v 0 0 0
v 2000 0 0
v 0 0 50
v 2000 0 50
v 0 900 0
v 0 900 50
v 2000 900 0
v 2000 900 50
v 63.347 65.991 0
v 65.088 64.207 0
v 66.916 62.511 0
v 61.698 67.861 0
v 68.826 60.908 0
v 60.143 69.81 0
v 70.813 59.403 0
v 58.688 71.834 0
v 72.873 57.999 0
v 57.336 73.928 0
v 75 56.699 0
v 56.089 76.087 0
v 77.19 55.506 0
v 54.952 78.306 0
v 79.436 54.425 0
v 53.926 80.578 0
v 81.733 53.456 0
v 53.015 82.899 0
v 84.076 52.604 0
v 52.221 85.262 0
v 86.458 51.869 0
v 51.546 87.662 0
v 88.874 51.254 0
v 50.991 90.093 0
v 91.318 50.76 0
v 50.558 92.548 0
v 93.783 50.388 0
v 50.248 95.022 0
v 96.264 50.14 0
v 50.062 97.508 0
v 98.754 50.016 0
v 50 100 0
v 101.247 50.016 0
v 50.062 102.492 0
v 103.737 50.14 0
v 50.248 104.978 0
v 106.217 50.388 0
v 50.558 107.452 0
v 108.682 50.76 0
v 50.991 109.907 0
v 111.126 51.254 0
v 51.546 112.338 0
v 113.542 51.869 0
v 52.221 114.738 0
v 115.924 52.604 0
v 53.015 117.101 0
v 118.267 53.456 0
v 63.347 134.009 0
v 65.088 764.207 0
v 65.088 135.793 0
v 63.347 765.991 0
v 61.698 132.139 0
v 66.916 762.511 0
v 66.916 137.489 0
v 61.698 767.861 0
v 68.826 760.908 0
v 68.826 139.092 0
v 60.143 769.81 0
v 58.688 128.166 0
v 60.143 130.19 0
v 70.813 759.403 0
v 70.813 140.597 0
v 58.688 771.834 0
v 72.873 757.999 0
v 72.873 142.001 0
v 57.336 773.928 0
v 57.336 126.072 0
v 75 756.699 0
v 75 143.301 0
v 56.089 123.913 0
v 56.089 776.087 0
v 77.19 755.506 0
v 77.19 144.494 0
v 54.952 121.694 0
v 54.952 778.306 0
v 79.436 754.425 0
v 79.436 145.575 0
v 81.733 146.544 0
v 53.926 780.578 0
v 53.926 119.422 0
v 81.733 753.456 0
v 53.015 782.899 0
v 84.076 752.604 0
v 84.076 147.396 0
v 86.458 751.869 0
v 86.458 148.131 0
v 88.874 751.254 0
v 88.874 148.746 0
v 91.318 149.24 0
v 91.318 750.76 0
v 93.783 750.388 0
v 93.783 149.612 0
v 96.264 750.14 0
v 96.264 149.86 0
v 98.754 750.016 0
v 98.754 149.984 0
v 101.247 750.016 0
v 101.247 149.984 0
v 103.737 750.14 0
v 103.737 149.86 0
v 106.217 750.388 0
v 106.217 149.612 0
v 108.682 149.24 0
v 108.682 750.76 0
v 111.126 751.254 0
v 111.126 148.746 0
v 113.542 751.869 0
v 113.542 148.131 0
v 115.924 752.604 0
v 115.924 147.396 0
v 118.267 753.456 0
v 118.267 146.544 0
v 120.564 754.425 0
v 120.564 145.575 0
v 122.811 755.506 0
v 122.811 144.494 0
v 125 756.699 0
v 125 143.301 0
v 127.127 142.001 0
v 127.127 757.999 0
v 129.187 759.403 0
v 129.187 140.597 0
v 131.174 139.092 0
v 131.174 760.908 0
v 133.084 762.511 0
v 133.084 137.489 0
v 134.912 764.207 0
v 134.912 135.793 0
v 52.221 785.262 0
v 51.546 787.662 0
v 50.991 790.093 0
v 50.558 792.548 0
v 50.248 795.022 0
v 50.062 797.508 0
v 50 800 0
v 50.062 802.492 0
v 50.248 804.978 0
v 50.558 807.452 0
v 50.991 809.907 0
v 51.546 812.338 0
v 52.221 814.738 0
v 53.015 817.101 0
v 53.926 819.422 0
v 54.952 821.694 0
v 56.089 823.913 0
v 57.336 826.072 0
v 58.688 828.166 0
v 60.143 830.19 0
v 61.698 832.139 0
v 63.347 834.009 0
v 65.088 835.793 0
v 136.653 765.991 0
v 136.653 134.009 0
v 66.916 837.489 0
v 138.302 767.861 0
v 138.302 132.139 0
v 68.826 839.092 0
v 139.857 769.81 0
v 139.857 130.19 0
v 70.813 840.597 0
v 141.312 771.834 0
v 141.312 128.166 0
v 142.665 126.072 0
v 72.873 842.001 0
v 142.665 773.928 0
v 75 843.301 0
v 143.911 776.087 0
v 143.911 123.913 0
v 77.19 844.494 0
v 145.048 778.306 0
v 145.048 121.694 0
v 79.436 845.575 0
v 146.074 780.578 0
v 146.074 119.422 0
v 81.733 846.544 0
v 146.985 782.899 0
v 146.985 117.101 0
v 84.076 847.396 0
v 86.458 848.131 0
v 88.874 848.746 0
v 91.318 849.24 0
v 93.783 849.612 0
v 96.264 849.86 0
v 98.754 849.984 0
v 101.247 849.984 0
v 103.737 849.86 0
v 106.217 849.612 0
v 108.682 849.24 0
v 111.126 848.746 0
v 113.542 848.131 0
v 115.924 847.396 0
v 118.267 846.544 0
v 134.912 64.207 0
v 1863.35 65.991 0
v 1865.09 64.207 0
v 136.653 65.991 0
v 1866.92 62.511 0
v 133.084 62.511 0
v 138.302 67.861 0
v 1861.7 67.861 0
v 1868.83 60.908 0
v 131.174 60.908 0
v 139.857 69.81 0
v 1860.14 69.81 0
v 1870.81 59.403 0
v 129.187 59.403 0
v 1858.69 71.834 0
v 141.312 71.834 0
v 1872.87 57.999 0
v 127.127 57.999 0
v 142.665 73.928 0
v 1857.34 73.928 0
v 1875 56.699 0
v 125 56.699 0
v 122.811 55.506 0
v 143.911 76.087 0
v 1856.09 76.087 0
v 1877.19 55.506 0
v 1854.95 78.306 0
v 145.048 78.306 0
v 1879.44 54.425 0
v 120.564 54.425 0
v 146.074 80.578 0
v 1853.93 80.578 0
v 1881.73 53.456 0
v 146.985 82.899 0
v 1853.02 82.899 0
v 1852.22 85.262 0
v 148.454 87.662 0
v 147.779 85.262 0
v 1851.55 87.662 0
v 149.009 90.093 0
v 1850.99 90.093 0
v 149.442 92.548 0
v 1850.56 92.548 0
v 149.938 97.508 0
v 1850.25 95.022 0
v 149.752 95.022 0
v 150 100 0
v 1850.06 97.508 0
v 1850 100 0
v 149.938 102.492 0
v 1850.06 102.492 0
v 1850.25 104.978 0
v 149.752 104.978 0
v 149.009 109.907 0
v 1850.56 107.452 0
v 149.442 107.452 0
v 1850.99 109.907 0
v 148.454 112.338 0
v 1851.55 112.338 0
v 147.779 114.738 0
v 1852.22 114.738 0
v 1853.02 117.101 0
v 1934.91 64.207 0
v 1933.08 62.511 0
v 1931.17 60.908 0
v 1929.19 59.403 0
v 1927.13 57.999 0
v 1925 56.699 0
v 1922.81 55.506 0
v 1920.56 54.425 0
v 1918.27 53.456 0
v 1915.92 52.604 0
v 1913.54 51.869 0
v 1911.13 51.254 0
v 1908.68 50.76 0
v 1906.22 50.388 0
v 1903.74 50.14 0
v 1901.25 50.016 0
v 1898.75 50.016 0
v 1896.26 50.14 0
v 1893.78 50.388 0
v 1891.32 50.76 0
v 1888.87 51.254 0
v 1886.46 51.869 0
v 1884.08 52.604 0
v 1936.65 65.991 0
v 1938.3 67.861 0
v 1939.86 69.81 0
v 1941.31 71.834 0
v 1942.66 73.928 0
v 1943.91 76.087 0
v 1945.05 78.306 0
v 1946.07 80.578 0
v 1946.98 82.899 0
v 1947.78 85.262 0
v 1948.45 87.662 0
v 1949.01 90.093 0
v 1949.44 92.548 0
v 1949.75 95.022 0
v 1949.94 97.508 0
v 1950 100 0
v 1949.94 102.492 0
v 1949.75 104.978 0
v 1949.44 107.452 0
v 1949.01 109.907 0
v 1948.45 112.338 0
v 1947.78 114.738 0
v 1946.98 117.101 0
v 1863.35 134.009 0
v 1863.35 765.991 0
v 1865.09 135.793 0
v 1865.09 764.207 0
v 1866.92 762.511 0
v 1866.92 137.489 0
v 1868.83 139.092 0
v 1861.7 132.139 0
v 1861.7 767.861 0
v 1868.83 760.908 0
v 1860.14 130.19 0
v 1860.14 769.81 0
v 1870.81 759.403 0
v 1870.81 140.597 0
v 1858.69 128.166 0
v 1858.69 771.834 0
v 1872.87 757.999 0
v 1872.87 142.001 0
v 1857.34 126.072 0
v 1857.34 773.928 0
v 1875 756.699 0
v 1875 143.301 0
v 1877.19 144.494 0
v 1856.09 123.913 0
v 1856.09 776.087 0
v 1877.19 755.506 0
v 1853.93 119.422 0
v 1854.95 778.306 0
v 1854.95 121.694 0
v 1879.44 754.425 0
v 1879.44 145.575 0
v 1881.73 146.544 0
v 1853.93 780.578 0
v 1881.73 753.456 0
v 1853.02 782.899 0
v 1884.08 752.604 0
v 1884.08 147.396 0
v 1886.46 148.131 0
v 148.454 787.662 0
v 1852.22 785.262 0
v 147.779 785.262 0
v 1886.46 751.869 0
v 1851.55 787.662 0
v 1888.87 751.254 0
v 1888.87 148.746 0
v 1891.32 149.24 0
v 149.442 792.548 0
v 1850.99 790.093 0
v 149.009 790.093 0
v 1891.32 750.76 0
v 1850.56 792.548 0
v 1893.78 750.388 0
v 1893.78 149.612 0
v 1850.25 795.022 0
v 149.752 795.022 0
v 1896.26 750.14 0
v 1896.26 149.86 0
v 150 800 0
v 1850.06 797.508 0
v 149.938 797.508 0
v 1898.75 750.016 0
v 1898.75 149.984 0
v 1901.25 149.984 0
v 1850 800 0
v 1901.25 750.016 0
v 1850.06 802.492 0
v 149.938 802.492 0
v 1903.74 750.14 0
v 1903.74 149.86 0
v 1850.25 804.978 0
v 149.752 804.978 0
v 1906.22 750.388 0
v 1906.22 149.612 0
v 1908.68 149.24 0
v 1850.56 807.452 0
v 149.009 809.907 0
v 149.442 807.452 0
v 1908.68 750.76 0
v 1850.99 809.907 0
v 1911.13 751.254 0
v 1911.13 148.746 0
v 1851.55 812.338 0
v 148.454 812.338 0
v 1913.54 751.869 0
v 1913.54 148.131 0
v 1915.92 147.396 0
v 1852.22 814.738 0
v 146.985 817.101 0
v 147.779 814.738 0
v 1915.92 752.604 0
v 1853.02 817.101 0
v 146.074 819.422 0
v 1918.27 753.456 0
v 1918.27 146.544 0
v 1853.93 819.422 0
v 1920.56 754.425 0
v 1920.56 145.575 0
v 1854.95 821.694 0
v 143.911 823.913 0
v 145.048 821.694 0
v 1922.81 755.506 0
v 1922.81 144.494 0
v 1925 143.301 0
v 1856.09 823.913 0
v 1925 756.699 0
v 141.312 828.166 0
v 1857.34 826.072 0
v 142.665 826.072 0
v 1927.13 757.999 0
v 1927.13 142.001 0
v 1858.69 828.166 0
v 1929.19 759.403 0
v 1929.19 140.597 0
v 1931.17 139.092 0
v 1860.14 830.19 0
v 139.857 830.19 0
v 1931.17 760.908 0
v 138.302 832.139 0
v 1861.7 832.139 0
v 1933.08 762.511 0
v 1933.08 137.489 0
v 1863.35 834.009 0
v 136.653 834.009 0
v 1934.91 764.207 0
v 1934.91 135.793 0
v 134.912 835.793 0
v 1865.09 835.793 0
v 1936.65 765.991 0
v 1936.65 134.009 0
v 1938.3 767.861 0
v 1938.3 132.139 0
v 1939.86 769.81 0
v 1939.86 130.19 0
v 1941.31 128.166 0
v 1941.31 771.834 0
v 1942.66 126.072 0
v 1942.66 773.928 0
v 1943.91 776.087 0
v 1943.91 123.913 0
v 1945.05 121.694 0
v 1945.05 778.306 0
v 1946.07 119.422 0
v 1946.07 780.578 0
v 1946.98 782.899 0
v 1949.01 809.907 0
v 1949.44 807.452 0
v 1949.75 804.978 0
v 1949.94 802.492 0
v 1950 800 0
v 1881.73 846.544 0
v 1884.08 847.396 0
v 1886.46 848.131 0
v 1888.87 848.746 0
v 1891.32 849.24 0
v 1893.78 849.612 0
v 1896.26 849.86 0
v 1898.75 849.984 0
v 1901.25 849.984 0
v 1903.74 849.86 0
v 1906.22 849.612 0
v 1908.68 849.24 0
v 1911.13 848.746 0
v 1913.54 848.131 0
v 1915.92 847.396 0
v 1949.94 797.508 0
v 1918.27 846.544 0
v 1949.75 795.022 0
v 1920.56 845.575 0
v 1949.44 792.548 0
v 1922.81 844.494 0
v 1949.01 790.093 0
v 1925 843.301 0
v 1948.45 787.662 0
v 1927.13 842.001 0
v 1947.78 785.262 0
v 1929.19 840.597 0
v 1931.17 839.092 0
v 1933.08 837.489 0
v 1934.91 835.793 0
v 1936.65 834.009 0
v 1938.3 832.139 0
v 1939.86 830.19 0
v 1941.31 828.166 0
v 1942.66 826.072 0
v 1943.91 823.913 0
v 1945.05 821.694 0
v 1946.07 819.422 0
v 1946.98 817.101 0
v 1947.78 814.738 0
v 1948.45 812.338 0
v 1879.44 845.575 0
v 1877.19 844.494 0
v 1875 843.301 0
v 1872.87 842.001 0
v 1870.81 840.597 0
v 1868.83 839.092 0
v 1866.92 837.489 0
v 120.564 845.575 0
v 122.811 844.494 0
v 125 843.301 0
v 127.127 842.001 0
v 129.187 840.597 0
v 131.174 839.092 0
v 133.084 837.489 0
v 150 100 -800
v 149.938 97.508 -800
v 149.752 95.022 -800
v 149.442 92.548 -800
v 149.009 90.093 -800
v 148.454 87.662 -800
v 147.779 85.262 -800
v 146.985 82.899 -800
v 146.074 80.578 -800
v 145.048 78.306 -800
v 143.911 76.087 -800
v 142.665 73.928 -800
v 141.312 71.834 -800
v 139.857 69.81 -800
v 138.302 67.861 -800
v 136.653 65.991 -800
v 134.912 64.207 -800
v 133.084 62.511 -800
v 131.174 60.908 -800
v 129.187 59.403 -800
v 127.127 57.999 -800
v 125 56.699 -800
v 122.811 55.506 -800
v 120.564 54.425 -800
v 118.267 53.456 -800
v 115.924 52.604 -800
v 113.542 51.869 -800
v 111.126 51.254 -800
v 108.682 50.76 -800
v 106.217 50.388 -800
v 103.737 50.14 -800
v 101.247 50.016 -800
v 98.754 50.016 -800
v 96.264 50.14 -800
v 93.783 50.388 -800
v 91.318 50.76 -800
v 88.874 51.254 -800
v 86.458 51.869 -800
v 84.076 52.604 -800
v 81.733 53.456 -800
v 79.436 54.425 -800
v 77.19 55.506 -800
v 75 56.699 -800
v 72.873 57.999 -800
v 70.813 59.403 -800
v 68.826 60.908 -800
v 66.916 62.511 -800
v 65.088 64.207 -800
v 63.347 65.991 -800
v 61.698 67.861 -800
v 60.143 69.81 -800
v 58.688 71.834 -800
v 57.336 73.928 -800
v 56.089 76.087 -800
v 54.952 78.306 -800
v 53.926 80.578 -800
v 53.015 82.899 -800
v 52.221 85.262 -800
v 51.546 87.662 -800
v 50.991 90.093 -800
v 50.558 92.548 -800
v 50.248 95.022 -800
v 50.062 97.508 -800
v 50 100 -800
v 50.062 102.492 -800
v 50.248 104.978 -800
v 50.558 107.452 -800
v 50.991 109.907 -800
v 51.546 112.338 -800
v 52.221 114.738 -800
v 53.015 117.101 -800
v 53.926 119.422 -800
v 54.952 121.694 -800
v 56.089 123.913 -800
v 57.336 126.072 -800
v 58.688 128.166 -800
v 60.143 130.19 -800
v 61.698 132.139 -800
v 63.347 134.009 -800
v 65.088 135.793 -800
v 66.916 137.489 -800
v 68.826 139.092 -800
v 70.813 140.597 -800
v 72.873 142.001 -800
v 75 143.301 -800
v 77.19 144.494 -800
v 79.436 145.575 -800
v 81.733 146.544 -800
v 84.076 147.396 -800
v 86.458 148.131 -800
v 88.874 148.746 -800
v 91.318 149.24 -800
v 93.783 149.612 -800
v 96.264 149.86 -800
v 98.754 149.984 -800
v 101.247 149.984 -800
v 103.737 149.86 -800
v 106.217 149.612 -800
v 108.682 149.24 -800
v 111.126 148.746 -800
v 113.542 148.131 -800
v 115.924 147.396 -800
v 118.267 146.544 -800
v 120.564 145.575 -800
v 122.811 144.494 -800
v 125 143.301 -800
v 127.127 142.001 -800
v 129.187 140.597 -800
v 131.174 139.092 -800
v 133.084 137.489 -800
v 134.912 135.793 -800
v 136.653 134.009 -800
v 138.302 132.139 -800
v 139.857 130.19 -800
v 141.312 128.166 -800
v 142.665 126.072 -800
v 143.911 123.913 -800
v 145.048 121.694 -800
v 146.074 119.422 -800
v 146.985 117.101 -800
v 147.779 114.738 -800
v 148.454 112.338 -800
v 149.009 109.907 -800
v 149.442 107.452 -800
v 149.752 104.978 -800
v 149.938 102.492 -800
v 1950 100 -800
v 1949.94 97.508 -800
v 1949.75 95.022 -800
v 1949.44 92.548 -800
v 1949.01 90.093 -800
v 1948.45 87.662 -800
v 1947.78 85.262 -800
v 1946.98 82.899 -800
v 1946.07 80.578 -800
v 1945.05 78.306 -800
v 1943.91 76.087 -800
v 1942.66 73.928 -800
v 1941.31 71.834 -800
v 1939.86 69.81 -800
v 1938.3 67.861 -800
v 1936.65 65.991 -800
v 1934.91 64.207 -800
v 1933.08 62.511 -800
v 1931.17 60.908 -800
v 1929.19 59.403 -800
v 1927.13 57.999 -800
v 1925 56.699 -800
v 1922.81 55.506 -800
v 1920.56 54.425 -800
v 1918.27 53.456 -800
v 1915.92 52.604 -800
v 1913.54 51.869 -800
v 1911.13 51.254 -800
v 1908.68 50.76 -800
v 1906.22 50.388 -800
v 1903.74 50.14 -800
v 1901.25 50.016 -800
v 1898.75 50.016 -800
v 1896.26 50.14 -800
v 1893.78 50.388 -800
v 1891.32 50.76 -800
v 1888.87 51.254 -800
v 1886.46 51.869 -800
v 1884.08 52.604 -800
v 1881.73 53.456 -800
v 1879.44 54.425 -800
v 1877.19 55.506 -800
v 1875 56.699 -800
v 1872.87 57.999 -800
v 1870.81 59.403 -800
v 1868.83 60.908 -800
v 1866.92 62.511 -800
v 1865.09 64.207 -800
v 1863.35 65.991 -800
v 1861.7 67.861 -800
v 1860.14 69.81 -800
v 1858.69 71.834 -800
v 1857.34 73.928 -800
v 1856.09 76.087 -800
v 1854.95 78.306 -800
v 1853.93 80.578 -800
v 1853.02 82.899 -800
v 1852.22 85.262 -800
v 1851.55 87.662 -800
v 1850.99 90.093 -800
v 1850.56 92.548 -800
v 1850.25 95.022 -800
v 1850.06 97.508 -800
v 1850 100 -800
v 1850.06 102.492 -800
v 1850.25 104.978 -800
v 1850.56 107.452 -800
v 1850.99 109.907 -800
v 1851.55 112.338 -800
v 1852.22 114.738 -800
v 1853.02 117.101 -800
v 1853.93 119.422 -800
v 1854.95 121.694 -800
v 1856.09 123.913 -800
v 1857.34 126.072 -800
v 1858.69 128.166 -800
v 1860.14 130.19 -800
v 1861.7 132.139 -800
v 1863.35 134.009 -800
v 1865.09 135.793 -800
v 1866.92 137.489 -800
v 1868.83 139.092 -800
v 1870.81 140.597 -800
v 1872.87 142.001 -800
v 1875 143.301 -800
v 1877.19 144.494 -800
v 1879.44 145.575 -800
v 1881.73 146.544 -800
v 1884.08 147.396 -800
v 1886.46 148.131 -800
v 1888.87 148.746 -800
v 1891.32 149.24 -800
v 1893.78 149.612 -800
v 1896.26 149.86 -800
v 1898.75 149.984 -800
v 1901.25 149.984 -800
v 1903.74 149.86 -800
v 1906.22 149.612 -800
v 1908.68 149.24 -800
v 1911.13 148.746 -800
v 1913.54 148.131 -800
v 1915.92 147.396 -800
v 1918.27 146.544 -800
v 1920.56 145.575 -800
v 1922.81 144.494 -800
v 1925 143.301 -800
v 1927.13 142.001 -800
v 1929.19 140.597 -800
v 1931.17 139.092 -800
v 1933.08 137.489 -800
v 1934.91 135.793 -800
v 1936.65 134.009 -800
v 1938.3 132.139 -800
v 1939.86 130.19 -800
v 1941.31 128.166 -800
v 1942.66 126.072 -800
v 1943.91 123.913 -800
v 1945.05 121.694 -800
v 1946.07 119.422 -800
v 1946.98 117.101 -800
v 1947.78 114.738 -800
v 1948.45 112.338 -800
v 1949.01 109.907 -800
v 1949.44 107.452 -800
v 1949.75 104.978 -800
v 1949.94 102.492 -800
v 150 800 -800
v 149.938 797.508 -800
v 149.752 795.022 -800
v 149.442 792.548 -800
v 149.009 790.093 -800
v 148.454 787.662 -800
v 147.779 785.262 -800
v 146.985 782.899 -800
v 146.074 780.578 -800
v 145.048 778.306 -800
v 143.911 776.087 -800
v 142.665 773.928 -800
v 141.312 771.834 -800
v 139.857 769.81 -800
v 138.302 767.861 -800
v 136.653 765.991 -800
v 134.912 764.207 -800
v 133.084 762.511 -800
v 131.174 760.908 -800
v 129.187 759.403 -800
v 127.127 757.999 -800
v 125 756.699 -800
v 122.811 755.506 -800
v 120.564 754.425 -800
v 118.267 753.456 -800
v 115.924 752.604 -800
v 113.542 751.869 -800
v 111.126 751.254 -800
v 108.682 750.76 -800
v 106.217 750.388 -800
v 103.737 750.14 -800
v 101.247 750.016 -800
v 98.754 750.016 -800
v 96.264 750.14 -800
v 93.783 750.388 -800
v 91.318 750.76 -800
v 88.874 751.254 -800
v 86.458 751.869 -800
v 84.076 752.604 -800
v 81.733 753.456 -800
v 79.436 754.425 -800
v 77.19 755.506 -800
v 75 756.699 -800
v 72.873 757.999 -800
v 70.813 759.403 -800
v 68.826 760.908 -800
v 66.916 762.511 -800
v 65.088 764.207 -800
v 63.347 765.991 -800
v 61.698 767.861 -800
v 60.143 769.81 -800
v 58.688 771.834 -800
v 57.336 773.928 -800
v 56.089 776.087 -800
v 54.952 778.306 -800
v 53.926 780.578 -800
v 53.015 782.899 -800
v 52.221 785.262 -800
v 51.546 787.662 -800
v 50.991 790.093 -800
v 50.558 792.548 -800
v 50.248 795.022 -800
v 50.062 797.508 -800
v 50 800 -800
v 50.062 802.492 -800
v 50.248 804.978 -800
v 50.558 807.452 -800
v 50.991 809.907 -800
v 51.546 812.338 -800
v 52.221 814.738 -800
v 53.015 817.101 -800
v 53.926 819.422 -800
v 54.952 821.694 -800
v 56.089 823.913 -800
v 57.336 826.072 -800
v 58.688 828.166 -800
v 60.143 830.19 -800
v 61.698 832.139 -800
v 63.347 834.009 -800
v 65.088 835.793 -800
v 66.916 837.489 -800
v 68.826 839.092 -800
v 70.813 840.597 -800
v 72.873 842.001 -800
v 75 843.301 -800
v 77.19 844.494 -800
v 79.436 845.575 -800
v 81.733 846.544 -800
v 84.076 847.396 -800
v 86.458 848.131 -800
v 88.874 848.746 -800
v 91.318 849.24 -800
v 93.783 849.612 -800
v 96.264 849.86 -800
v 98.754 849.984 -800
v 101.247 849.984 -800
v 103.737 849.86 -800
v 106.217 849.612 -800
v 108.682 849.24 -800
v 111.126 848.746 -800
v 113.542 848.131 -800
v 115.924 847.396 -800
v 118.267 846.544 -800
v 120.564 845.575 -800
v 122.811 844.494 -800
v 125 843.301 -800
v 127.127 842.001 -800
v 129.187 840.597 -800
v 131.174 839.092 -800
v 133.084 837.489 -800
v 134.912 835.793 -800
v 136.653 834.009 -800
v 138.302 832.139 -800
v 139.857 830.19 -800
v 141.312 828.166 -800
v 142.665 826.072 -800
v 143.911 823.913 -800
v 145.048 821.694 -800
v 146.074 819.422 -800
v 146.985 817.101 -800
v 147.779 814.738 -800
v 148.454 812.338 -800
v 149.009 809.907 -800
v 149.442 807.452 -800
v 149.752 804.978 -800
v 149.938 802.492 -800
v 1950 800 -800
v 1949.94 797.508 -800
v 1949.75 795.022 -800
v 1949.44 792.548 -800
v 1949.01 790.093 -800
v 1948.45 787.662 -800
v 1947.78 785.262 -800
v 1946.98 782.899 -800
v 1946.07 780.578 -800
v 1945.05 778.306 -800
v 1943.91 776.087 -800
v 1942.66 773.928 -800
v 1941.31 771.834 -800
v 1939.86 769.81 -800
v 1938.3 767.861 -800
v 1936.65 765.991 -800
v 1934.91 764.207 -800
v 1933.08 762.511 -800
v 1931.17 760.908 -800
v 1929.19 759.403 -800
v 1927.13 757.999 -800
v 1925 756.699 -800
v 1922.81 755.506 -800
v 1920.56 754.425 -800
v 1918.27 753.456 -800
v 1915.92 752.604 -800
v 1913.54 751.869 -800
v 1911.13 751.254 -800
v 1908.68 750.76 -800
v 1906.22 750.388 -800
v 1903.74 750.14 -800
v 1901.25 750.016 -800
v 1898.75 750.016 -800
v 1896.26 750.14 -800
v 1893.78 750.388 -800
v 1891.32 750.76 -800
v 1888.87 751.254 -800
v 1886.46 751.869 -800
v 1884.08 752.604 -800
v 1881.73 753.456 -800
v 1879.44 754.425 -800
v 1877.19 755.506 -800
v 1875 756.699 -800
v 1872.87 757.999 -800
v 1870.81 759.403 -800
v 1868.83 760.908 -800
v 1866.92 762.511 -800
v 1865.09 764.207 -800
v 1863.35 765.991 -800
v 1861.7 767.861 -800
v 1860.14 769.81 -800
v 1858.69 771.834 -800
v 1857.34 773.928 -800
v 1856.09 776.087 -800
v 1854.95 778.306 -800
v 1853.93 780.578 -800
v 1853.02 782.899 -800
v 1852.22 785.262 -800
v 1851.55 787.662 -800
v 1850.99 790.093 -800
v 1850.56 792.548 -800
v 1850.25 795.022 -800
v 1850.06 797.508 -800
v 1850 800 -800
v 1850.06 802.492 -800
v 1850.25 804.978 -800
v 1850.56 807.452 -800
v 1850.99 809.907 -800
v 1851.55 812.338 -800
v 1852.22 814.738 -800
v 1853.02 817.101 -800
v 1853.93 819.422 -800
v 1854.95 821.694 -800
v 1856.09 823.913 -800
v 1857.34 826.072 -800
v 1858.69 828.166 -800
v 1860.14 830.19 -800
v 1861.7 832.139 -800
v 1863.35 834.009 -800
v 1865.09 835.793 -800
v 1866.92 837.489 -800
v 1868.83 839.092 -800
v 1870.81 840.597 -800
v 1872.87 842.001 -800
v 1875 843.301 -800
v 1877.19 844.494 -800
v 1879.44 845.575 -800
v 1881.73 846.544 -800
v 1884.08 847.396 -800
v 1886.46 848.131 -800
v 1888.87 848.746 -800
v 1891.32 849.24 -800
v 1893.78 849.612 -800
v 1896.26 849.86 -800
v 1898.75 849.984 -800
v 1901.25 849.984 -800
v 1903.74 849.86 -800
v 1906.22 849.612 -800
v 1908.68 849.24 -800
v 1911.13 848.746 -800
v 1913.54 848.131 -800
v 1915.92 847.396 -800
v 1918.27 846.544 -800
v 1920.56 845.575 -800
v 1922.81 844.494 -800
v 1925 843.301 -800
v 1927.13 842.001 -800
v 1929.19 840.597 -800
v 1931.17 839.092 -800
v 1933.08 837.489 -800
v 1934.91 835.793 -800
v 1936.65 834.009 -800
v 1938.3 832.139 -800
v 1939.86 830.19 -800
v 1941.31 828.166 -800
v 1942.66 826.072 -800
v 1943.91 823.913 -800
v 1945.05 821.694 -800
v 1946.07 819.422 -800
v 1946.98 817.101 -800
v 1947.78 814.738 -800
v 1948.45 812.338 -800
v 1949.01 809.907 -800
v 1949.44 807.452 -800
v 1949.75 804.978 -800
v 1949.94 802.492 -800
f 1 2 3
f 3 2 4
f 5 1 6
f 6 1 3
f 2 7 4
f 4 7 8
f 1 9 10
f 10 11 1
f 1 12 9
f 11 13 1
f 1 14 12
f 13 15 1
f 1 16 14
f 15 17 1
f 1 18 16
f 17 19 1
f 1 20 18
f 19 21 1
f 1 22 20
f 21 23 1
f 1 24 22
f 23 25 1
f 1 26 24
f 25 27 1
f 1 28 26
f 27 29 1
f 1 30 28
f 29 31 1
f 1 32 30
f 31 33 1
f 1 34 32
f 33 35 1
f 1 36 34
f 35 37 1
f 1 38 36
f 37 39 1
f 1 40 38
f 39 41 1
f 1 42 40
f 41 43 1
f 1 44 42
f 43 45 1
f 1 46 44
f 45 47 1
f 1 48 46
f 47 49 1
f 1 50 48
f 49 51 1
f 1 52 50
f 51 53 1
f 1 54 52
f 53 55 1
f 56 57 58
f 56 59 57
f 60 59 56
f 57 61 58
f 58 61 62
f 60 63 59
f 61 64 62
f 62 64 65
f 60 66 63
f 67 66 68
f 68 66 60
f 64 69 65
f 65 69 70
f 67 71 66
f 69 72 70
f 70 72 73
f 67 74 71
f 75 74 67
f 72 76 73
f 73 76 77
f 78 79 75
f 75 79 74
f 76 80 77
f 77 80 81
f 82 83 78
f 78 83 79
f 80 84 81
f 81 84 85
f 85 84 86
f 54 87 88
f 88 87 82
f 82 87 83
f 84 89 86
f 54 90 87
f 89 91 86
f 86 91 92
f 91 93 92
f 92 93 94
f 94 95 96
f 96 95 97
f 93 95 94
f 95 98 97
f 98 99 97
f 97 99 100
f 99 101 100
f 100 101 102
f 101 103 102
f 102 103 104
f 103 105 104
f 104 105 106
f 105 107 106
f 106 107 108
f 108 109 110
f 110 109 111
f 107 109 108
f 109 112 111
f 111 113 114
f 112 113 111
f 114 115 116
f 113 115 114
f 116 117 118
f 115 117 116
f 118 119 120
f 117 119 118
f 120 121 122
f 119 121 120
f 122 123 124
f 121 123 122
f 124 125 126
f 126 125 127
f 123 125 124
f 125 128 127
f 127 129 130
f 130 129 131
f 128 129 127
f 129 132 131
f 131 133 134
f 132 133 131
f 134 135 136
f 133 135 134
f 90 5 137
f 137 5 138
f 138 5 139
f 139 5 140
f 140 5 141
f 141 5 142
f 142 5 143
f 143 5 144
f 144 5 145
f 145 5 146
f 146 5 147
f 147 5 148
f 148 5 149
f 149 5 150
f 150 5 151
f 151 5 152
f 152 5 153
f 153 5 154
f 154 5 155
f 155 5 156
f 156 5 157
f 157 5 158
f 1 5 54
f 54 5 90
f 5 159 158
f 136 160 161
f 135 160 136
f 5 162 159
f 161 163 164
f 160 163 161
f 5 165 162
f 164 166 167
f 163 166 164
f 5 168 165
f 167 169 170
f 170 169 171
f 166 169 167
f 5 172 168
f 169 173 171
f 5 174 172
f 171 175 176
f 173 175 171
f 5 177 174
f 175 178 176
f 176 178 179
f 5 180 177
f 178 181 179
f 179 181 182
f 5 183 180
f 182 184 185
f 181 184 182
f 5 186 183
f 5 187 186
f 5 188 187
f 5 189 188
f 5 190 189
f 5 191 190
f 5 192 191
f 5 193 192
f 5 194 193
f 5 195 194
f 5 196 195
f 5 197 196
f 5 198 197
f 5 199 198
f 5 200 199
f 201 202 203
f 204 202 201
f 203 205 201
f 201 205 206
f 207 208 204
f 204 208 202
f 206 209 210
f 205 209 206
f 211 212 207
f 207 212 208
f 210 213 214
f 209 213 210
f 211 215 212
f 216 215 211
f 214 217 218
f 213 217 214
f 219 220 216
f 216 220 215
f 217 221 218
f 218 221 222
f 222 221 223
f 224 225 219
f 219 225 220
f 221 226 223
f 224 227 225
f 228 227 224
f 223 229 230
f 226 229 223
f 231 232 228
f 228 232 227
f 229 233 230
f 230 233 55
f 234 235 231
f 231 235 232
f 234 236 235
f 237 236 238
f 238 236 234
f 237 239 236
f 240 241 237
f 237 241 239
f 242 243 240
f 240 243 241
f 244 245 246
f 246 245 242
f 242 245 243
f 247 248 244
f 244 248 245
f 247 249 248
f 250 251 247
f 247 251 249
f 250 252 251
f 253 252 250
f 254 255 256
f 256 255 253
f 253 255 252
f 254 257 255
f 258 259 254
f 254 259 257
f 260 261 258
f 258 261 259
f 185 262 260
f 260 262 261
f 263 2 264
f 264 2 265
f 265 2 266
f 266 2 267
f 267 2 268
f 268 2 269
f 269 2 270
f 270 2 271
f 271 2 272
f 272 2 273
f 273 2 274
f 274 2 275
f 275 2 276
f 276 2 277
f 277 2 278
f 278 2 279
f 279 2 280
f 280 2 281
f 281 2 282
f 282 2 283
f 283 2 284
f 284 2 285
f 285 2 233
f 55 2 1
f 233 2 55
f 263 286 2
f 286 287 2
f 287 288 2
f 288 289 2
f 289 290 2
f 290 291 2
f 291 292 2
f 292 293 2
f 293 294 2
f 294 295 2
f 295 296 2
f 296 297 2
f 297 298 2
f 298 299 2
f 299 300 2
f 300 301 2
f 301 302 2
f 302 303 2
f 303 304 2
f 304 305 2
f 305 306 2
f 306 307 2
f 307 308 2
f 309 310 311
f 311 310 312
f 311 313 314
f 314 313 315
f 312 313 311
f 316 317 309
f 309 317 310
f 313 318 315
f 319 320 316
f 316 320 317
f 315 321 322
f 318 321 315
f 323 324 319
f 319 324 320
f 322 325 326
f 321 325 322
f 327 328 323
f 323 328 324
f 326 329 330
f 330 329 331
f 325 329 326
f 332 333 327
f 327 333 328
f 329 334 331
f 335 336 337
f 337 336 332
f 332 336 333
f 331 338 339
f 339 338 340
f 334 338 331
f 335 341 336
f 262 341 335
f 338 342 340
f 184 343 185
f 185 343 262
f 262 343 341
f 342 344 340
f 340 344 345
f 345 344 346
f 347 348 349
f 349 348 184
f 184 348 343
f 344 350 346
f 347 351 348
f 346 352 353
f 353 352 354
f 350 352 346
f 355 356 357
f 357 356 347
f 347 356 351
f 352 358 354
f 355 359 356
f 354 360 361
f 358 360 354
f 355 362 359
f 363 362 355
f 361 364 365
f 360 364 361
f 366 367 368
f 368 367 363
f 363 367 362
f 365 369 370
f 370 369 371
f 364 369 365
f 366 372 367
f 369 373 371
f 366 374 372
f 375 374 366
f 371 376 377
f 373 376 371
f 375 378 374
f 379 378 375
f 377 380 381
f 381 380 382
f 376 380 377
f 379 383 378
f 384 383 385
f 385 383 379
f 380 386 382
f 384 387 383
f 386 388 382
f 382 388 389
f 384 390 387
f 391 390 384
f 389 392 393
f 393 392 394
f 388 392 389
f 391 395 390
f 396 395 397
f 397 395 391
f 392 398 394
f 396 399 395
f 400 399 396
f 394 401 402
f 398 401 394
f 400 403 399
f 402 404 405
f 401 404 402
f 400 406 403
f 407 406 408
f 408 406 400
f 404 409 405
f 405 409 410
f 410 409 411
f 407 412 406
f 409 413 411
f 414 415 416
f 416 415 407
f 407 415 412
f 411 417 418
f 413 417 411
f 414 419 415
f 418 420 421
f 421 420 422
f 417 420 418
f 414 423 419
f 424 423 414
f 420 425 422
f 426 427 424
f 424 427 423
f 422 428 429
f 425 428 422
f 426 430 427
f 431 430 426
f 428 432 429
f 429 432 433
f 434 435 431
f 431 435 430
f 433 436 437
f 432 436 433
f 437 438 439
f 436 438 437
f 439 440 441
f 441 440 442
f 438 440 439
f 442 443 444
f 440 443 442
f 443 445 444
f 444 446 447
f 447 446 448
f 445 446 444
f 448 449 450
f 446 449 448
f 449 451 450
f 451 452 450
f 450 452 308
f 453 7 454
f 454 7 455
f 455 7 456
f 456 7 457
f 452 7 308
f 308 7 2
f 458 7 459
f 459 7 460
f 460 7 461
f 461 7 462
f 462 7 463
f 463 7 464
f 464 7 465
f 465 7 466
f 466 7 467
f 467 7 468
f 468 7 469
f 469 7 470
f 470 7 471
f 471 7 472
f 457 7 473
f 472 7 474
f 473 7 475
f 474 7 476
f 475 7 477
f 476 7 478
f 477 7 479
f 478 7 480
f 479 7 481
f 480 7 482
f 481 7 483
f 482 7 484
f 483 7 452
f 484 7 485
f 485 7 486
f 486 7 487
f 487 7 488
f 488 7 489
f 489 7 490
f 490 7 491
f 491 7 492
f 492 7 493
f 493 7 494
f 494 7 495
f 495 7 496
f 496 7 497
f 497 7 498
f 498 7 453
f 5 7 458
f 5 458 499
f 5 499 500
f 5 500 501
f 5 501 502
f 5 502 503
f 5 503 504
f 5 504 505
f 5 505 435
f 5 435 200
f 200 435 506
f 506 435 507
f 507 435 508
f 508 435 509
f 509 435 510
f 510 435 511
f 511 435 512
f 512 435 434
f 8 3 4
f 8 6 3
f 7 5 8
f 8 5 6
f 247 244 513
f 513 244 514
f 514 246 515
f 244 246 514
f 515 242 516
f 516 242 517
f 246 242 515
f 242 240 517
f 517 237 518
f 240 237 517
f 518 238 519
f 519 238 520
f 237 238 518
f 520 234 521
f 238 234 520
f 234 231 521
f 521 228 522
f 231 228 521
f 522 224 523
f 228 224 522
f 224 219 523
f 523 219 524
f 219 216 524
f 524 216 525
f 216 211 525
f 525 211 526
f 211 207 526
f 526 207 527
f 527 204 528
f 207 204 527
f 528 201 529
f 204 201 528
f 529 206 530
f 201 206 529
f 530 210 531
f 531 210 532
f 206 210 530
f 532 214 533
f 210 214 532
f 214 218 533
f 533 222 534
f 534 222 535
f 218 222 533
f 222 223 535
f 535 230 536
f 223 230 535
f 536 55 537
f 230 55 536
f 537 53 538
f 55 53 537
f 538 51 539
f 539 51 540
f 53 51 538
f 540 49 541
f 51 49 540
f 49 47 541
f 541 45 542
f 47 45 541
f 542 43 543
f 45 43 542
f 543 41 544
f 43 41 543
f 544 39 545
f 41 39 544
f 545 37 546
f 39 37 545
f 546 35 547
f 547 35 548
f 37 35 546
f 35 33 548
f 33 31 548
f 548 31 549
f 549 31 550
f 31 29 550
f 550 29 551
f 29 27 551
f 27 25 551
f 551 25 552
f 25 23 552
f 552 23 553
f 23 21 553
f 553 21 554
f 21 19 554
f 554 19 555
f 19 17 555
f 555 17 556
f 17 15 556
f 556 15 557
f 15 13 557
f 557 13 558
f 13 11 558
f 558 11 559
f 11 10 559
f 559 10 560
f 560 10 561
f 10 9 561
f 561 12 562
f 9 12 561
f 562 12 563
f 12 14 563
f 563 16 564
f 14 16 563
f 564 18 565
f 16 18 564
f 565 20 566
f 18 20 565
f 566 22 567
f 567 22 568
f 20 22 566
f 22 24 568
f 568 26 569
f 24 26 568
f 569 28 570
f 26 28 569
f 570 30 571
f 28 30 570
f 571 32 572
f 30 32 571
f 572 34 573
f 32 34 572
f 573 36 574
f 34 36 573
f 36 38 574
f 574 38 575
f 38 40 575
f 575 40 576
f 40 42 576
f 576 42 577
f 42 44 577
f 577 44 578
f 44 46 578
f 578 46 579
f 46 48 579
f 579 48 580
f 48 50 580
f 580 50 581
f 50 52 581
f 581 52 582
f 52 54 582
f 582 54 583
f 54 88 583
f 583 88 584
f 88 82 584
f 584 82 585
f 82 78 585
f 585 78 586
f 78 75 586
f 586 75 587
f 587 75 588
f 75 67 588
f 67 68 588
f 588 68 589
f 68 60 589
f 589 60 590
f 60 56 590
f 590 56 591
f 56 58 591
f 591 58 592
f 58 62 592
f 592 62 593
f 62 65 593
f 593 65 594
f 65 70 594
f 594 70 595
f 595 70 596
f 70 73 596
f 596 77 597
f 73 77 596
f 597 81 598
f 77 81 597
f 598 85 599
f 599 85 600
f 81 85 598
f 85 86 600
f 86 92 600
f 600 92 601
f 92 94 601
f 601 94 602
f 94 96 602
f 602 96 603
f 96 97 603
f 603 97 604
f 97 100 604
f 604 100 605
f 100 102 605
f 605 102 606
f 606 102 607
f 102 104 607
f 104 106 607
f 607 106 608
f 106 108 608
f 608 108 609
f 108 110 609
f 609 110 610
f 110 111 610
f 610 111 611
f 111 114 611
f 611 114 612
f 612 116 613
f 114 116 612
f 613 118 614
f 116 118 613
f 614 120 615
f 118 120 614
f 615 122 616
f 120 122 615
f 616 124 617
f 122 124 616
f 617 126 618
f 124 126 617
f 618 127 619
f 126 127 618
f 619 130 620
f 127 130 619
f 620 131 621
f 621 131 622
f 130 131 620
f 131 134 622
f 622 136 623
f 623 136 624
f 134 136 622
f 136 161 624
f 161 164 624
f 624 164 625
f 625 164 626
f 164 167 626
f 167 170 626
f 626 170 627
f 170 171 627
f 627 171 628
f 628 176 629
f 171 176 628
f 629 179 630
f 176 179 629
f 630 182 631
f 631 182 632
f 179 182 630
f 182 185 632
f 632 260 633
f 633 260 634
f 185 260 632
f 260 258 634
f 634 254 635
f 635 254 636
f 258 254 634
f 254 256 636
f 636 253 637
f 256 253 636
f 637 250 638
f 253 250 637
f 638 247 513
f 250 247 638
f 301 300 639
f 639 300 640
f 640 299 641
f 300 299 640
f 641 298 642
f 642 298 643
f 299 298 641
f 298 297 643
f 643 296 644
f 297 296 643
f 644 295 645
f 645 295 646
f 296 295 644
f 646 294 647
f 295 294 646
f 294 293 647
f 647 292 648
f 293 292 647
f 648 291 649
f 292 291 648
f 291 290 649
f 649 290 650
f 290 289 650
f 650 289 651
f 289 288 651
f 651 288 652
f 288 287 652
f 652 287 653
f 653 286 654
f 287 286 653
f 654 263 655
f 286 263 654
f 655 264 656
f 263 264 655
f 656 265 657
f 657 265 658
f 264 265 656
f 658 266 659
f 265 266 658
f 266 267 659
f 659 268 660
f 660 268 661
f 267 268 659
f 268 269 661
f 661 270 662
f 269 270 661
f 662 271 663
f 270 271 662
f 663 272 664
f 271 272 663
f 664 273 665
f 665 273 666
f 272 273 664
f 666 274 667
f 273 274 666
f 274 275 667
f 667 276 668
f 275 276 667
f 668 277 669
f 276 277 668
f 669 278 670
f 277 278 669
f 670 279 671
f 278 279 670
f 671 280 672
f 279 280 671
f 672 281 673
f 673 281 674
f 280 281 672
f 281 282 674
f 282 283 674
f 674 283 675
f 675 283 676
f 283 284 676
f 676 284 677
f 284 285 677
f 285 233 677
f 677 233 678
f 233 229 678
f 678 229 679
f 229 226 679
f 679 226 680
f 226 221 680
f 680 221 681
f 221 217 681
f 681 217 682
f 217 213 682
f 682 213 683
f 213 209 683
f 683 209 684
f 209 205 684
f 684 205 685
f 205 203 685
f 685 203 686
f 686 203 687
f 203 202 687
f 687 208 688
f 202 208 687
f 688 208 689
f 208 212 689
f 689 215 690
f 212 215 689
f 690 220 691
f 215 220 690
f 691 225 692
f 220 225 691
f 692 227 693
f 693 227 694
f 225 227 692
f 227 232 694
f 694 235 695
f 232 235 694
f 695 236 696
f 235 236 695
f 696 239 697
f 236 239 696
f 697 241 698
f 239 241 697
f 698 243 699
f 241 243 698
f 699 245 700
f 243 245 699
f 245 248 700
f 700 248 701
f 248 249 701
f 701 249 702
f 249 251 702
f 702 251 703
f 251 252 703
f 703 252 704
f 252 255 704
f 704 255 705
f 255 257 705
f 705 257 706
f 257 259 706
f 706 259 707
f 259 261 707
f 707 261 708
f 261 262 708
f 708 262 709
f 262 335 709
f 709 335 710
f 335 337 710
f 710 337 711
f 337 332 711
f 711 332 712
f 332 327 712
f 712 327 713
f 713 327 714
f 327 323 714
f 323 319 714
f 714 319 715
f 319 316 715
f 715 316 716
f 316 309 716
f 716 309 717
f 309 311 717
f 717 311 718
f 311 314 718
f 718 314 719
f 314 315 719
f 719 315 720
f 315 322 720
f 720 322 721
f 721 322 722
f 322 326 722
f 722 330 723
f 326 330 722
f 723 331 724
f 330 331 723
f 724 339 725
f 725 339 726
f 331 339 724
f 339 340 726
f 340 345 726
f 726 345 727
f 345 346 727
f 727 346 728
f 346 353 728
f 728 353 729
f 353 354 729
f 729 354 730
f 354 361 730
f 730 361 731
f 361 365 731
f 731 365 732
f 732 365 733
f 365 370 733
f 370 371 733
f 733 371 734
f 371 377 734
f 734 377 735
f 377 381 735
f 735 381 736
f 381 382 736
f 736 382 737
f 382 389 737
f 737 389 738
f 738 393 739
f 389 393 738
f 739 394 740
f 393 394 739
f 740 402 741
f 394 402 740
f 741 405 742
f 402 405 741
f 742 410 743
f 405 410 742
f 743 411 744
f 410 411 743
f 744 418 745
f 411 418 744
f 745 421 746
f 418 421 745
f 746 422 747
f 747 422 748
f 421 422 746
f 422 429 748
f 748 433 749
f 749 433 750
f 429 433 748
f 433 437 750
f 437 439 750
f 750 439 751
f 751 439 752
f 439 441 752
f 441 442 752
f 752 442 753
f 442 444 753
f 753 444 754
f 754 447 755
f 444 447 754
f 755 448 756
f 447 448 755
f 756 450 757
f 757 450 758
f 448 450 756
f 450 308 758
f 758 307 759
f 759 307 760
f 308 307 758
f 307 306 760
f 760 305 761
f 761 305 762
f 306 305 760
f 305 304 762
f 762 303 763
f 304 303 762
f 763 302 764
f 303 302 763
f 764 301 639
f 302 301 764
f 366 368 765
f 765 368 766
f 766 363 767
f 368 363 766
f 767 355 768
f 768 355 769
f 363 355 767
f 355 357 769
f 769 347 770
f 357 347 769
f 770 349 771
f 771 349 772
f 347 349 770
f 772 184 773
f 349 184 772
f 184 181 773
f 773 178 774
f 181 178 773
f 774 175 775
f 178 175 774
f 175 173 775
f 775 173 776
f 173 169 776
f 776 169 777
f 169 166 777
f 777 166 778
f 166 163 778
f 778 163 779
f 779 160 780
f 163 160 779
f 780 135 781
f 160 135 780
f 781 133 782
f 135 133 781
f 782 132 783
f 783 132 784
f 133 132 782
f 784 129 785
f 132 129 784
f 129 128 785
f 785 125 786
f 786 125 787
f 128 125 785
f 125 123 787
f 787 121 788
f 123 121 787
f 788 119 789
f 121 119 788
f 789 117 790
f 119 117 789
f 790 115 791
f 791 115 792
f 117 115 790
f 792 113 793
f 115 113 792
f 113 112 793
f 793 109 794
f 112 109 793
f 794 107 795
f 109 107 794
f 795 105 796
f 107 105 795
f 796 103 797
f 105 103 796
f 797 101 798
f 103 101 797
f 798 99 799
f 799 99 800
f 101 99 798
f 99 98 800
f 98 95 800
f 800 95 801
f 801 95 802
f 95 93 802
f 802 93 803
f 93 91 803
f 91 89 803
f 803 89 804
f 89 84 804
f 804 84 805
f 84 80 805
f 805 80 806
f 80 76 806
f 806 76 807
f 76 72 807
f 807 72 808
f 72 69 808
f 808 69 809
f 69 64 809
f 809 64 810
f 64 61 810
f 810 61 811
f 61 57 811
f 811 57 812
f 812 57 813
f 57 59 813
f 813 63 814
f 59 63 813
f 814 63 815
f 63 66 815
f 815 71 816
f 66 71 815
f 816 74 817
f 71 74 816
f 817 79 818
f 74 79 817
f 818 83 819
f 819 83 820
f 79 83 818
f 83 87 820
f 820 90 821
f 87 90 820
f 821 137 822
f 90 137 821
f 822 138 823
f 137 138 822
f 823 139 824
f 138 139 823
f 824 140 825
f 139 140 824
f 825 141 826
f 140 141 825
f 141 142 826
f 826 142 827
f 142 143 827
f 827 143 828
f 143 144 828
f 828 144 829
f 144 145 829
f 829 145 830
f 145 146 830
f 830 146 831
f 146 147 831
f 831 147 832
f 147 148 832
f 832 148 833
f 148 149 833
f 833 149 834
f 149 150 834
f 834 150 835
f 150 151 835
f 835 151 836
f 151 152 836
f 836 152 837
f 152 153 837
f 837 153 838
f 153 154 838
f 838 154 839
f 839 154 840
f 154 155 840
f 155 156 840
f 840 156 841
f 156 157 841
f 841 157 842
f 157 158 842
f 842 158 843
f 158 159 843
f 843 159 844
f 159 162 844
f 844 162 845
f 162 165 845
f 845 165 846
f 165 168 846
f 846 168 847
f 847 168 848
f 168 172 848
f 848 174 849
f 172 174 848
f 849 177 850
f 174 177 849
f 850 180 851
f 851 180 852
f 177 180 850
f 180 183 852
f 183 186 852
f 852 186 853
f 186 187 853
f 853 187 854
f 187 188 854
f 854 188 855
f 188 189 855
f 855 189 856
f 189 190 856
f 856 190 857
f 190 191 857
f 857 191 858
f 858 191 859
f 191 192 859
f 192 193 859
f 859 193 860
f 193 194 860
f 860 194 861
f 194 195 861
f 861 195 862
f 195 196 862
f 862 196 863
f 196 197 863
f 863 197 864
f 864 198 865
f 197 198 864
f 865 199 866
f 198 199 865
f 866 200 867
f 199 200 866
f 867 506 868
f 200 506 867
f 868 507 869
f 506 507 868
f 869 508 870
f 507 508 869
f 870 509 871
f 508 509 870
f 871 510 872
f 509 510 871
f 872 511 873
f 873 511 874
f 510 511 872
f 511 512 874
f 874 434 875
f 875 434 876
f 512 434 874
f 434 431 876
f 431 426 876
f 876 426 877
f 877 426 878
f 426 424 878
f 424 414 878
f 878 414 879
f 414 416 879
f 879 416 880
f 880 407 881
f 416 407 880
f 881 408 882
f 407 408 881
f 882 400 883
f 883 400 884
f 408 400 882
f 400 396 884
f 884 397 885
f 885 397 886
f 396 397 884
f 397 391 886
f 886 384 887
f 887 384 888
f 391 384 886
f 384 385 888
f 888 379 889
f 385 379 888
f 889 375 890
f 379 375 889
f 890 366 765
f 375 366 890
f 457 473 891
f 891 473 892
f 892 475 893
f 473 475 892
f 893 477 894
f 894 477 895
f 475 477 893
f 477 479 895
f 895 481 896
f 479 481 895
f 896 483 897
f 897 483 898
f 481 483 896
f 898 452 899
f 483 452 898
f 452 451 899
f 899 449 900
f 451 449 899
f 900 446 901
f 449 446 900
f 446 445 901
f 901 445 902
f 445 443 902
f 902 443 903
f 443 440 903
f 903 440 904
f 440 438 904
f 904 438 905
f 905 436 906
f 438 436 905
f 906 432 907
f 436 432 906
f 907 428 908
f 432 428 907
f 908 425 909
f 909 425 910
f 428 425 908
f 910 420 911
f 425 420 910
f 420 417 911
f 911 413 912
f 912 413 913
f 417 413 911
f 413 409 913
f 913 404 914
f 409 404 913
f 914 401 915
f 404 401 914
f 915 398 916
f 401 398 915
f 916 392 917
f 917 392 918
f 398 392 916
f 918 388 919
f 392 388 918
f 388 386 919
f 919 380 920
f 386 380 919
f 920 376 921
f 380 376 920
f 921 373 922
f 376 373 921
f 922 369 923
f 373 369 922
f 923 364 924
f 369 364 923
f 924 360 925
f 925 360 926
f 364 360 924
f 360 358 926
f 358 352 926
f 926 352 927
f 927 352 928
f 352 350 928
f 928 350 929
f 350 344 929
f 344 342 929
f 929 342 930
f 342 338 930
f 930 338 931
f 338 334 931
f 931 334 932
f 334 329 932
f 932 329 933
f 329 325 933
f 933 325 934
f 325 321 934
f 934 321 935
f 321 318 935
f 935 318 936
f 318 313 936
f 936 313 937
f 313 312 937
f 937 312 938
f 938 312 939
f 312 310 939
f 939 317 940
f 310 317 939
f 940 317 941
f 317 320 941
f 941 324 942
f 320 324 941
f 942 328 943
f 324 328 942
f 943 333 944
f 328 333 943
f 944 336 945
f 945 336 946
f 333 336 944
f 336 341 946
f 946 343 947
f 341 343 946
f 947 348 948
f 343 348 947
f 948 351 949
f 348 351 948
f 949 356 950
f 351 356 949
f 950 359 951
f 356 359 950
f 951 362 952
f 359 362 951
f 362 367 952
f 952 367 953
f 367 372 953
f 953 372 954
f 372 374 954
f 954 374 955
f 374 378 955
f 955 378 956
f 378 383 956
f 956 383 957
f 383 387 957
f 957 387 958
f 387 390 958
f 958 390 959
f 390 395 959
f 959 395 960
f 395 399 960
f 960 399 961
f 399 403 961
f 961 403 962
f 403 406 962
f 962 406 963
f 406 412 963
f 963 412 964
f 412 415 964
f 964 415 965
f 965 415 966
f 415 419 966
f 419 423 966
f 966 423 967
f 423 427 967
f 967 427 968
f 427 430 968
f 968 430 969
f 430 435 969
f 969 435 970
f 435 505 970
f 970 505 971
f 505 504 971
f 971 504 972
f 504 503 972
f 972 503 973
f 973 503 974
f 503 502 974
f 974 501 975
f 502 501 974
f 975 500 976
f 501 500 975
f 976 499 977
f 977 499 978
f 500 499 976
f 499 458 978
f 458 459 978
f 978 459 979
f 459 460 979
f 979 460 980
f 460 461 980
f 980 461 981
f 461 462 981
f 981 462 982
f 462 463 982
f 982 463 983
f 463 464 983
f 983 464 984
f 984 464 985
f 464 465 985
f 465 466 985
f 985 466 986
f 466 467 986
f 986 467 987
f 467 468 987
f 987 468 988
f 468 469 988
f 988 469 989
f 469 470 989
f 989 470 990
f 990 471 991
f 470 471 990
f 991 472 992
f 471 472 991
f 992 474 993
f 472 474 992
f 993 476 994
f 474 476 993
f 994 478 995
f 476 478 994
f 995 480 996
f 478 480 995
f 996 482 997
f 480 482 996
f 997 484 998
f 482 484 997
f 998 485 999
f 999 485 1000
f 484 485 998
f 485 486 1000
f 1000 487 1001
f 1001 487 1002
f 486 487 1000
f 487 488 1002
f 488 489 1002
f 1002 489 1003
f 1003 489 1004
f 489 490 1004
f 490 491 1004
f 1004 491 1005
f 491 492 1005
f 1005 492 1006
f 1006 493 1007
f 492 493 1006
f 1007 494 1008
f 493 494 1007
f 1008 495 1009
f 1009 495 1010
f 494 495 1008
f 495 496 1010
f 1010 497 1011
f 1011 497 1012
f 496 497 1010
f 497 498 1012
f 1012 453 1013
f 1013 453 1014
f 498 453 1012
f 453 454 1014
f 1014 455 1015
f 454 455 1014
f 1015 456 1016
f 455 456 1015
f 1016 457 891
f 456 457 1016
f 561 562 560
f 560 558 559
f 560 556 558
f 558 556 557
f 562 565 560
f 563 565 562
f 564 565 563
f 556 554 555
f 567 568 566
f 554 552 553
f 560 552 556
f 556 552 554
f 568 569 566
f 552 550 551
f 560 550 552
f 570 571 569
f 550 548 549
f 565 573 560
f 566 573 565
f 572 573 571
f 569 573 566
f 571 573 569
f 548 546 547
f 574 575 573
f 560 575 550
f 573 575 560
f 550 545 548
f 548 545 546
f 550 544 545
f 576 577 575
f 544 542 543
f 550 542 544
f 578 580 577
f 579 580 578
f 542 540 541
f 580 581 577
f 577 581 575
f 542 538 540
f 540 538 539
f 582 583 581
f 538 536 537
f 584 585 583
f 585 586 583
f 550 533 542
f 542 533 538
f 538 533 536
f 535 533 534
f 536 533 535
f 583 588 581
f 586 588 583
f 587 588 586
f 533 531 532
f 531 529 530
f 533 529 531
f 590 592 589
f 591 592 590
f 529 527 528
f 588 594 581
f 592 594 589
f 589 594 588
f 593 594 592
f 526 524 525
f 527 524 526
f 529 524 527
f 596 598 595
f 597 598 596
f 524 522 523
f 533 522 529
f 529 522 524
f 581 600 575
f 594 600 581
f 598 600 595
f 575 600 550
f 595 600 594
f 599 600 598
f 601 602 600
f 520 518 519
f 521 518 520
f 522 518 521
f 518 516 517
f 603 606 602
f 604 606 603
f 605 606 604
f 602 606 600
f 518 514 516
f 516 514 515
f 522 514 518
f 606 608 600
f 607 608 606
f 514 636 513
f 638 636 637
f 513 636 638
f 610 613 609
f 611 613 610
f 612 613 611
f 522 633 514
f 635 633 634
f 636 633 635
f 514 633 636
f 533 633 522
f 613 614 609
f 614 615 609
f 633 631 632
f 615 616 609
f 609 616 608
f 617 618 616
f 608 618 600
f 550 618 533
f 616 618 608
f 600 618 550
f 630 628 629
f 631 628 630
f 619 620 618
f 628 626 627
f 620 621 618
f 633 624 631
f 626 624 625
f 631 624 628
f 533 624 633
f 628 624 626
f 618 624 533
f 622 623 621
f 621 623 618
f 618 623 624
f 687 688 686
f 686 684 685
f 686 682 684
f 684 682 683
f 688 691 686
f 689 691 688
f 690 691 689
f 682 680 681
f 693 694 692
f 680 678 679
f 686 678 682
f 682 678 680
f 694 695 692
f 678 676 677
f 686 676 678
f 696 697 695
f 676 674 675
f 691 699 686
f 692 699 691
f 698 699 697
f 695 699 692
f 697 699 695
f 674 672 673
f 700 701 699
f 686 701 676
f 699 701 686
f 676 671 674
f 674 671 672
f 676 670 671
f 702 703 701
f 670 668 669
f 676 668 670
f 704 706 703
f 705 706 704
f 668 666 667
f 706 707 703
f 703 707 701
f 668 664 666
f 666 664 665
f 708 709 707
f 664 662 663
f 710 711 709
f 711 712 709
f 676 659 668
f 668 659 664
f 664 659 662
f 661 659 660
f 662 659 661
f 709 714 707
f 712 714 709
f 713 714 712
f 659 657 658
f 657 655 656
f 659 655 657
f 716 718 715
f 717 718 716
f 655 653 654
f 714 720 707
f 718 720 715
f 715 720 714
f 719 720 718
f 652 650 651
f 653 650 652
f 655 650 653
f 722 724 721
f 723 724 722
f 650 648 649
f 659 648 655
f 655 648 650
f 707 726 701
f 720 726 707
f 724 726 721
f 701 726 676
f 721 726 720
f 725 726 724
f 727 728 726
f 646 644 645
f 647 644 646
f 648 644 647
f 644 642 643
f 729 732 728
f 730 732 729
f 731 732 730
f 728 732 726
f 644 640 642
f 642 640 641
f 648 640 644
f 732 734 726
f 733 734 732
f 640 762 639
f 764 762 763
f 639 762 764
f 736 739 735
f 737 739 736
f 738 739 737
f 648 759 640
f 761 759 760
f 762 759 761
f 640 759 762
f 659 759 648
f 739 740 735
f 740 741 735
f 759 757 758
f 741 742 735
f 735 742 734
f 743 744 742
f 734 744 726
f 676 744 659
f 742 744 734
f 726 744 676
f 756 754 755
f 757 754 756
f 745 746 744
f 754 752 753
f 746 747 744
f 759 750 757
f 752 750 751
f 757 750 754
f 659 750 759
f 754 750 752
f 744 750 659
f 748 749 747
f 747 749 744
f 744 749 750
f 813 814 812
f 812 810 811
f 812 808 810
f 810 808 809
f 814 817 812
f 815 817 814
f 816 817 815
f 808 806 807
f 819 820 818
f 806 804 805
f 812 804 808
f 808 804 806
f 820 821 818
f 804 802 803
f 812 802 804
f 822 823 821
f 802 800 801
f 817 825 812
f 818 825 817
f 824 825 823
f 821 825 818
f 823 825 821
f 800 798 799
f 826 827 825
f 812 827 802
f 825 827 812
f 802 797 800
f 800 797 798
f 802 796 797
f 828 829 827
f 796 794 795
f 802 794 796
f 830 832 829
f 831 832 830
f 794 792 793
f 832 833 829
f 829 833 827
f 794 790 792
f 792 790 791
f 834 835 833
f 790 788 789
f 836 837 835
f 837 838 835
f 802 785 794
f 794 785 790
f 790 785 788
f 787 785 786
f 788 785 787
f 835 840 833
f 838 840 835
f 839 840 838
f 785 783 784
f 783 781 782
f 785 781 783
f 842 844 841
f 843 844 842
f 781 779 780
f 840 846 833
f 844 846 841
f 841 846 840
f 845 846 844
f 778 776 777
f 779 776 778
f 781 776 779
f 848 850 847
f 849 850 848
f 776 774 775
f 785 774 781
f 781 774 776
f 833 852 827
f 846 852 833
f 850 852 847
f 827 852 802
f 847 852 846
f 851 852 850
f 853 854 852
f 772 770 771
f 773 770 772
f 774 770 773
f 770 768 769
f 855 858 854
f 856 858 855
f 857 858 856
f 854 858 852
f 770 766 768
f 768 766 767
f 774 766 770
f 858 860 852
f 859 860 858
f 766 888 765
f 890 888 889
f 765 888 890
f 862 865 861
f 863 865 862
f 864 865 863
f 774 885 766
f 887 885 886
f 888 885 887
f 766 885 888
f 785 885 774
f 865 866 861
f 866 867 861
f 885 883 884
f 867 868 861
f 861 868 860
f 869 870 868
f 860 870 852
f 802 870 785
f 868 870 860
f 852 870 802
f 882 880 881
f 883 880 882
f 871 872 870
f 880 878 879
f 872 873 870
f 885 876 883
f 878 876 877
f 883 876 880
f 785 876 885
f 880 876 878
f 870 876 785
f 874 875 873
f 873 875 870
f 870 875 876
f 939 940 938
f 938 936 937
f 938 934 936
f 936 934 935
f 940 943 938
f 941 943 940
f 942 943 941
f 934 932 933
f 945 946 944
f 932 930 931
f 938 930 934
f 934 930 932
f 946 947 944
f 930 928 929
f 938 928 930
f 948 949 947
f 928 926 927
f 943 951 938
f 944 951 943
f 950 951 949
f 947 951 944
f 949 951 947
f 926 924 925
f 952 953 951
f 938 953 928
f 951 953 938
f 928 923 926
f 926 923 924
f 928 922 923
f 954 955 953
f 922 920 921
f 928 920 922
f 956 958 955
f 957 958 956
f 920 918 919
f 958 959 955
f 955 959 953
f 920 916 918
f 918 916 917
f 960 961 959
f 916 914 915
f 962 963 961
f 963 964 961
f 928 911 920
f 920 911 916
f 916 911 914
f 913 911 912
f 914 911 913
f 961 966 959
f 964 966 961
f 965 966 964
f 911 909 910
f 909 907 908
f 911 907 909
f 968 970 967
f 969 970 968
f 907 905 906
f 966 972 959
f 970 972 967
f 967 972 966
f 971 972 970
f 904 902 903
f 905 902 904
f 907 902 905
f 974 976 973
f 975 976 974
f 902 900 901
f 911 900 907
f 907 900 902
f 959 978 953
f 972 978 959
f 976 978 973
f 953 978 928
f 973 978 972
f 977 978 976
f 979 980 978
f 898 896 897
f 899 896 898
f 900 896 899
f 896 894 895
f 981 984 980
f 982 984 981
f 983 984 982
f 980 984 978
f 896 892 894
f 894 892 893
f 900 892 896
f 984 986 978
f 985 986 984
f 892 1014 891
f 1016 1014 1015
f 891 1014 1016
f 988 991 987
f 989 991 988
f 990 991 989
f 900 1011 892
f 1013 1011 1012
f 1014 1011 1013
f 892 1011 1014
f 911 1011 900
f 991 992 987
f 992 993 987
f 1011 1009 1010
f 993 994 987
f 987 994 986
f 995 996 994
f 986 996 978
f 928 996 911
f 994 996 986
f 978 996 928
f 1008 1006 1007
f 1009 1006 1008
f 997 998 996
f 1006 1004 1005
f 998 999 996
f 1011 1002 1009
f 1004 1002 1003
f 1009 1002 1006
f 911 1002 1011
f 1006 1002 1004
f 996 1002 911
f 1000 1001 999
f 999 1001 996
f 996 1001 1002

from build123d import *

# Parameters (mm, degrees)
SKETCH_W     = 2000
SKETCH_H     = 900
PAD_DEPTH    = 50
SKETCH001_R  = 50
PAD001_DEPTH = 800


with BuildPart() as part:
    # Sketch → Pad (new body)
    with BuildSketch(Plane.XY):
        with Locations((1000, 450)):
            Rectangle(SKETCH_W, SKETCH_H)
    extrude(amount=PAD_DEPTH)

    # Sketch001 (on Face5 of Pad) → Pad001 (join)
    with BuildSketch(Plane(origin=(0, 0, 0), x_dir=(1, 0, 0), z_dir=(0, 0, -1))):
        with Locations((100, -100)):
            Circle(SKETCH001_R)
        with Locations((1900, -100)):
            Circle(SKETCH001_R)
        with Locations((1900, -800)):
            Circle(SKETCH001_R)
        with Locations((100, -800)):
            Circle(SKETCH001_R)
    extrude(amount=PAD001_DEPTH)


solid = part.part
